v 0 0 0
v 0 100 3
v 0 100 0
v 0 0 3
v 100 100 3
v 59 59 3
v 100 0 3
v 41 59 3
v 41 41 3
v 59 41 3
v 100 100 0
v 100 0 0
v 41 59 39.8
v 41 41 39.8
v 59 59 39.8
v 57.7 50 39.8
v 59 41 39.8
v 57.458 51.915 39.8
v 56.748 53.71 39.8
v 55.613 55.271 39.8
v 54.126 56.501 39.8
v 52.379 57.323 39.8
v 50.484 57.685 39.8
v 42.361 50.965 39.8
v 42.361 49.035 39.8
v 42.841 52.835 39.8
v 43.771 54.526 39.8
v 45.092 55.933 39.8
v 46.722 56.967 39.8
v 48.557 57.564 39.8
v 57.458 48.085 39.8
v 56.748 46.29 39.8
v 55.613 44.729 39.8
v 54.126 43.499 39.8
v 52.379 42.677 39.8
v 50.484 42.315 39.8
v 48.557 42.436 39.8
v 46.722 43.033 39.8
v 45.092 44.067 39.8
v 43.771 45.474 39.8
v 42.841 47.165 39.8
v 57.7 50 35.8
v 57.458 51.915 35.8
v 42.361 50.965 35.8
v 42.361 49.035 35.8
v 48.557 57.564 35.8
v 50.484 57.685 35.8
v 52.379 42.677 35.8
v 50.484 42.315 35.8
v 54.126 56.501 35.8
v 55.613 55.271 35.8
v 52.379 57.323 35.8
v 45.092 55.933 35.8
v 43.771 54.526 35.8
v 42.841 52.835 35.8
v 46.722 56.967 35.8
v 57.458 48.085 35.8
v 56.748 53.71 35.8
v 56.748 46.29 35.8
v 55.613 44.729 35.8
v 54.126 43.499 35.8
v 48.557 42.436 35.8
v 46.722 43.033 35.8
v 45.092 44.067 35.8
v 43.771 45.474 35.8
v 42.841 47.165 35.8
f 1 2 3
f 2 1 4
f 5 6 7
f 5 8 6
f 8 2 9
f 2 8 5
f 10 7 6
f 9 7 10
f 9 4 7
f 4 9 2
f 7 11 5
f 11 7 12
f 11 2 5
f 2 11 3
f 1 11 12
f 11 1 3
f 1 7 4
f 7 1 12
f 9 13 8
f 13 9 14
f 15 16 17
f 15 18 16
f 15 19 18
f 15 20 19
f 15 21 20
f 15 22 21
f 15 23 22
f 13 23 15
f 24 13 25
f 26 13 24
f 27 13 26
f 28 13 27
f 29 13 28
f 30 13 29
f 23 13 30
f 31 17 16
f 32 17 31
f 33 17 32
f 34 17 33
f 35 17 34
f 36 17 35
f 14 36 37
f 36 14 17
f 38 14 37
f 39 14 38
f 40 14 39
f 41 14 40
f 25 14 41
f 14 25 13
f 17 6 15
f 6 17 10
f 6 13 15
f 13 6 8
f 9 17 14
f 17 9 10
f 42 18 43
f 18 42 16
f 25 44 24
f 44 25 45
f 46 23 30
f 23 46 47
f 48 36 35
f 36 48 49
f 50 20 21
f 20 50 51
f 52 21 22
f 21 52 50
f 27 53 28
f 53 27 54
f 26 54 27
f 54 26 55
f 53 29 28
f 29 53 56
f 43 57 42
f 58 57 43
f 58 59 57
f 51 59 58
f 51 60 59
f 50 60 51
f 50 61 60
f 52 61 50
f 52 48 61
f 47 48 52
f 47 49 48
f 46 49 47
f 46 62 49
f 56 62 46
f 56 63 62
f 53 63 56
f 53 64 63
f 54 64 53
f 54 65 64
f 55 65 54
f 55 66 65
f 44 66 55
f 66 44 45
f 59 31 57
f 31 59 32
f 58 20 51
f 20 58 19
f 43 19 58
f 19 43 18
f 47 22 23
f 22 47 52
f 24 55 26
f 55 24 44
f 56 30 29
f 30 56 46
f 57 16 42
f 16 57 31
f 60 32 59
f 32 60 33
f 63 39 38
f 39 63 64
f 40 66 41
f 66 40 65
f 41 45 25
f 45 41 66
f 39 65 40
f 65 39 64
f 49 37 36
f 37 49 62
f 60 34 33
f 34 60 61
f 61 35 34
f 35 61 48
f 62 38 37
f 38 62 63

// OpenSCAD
// file: SquarePileLib.scad
module LeftPile(wallThickness, totalHeight, singlePileHeight, singlePileWidth, singlePileLength, pileCount){
//    15.05 by 14.95 by 2.15
    pileHeight = (pileCount * singlePileHeight) + .5;
    openingSize = singlePileWidth * .75;
    blockerSize = (singlePileLength - openingSize) / 2;
    
    translate([wallThickness, wallThickness, totalHeight - pileHeight])
        cube([singlePileLength, singlePileWidth, pileHeight]);
    translate([-.00001, wallThickness + (blockerSize), 0])
        cube([wallThickness + openingSize, openingSize, totalHeight]);
}

module RightPile(wallThickness, totalHeight, singlePileHeight, singlePileWidth, singlePileLength, pileCount){
    translate([0, wallThickness + wallThickness + singlePileWidth, 0])
        rotate([0, 0, 180])
            LeftPile(wallThickness, totalHeight, singlePileHeight, singlePileWidth, singlePileLength, pileCount);
}

module BottomPile(wallThickness, totalHeight, singlePileHeight, singlePileWidth, singlePileLength, pileCount){
    translate([wallThickness + wallThickness + singlePileWidth, 0, 0])
        rotate([0, 0, 90])
            LeftPile(wallThickness, totalHeight, singlePileHeight, singlePileWidth, singlePileLength, pileCount);
}

module TopPile(wallThickness, totalHeight, singlePileHeight, singlePileWidth, singlePileLength, pileCount){
//    translate([
//        wallThickness + wallThickness + singlePileWidth,
//        wallThickness + wallThickness + singlePileWidth,
//        0])
        rotate([0, 0, 270])
            LeftPile(wallThickness, totalHeight, singlePileHeight, singlePileWidth, singlePileLength, pileCount);
}
// file: ColonistsBuildingsLib.scad
include<SquarePileLib.scad>
//25.82 by 32.82 by 2.15
singleBuildingPileHeight = 2.15;
singleBuildingPileWidth = 25.82 + 1.5;
singleBuildingPileLength = 32.82 + 1.5;

module LeftBuildingPile(wallThickness, totalHeight, buildingPileCount){
    LeftPile(
        wallThickness,
        totalHeight,
        singleBuildingPileHeight,
        singleBuildingPileWidth,
        singleBuildingPileLength,
        buildingPileCount);
}

module RightBuildingPile(wallThickness, totalHeight, buildingPileCount){
    RightPile(
        wallThickness,
        totalHeight,
        singleBuildingPileHeight,
        singleBuildingPileWidth,
        singleBuildingPileLength,
        buildingPileCount);
}

module BottomBuildingPile(wallThickness, totalHeight, buildingPileCount){
    BottomPile(
        wallThickness,
        totalHeight,
        singleBuildingPileHeight,
        singleBuildingPileWidth,
        singleBuildingPileLength,
        buildingPileCount);
}

module TopBuildingPile(wallThickness, totalHeight, buildingPileCount){
    TopPile(
        wallThickness,
        totalHeight,
        singleBuildingPileHeight,
        singleBuildingPileWidth,
        singleBuildingPileLength,
        buildingPileCount);
}

function buildingPileHeight(buildingPileCount) =
    (buildingPileCount * singleBuildingPileHeight) + .5;
// main file
include<ColonistsBuildingsLib.scad>

length = 100;
width = 100;

height = 3;


magnetHoleWidth = 19;
floorThickness = 3;
maxBuildingsPerStack = 4;
singleLayerHeight = buildingPileHeight(maxBuildingsPerStack) + floorThickness;
pillarHeight = (singleLayerHeight * 3)+ .5 + height;
echo (pillarHeight);

//Based on magnet size:
pillarSideLength = 18;
pillarSideOffset = .5;

magnetBaseInnerDiameter = 15.4;
magnetHeight = 4.0;

spaceBetweenCircles = 2;


difference() {
union(){
    cube([length, width, height]);


//----------------------------------


            
//---------------------------------------------------------------------
    
          

//----------------------------------------
   
    translate([length/2 - ((pillarSideLength)/2), width/2 - ((pillarSideLength)/2), 0])
        cube([pillarSideLength, pillarSideLength, pillarHeight]);
        

}
    translate([length/2,  width/2, pillarHeight - magnetHeight])
        cylinder(magnetHeight, d=magnetBaseInnerDiameter);

}
